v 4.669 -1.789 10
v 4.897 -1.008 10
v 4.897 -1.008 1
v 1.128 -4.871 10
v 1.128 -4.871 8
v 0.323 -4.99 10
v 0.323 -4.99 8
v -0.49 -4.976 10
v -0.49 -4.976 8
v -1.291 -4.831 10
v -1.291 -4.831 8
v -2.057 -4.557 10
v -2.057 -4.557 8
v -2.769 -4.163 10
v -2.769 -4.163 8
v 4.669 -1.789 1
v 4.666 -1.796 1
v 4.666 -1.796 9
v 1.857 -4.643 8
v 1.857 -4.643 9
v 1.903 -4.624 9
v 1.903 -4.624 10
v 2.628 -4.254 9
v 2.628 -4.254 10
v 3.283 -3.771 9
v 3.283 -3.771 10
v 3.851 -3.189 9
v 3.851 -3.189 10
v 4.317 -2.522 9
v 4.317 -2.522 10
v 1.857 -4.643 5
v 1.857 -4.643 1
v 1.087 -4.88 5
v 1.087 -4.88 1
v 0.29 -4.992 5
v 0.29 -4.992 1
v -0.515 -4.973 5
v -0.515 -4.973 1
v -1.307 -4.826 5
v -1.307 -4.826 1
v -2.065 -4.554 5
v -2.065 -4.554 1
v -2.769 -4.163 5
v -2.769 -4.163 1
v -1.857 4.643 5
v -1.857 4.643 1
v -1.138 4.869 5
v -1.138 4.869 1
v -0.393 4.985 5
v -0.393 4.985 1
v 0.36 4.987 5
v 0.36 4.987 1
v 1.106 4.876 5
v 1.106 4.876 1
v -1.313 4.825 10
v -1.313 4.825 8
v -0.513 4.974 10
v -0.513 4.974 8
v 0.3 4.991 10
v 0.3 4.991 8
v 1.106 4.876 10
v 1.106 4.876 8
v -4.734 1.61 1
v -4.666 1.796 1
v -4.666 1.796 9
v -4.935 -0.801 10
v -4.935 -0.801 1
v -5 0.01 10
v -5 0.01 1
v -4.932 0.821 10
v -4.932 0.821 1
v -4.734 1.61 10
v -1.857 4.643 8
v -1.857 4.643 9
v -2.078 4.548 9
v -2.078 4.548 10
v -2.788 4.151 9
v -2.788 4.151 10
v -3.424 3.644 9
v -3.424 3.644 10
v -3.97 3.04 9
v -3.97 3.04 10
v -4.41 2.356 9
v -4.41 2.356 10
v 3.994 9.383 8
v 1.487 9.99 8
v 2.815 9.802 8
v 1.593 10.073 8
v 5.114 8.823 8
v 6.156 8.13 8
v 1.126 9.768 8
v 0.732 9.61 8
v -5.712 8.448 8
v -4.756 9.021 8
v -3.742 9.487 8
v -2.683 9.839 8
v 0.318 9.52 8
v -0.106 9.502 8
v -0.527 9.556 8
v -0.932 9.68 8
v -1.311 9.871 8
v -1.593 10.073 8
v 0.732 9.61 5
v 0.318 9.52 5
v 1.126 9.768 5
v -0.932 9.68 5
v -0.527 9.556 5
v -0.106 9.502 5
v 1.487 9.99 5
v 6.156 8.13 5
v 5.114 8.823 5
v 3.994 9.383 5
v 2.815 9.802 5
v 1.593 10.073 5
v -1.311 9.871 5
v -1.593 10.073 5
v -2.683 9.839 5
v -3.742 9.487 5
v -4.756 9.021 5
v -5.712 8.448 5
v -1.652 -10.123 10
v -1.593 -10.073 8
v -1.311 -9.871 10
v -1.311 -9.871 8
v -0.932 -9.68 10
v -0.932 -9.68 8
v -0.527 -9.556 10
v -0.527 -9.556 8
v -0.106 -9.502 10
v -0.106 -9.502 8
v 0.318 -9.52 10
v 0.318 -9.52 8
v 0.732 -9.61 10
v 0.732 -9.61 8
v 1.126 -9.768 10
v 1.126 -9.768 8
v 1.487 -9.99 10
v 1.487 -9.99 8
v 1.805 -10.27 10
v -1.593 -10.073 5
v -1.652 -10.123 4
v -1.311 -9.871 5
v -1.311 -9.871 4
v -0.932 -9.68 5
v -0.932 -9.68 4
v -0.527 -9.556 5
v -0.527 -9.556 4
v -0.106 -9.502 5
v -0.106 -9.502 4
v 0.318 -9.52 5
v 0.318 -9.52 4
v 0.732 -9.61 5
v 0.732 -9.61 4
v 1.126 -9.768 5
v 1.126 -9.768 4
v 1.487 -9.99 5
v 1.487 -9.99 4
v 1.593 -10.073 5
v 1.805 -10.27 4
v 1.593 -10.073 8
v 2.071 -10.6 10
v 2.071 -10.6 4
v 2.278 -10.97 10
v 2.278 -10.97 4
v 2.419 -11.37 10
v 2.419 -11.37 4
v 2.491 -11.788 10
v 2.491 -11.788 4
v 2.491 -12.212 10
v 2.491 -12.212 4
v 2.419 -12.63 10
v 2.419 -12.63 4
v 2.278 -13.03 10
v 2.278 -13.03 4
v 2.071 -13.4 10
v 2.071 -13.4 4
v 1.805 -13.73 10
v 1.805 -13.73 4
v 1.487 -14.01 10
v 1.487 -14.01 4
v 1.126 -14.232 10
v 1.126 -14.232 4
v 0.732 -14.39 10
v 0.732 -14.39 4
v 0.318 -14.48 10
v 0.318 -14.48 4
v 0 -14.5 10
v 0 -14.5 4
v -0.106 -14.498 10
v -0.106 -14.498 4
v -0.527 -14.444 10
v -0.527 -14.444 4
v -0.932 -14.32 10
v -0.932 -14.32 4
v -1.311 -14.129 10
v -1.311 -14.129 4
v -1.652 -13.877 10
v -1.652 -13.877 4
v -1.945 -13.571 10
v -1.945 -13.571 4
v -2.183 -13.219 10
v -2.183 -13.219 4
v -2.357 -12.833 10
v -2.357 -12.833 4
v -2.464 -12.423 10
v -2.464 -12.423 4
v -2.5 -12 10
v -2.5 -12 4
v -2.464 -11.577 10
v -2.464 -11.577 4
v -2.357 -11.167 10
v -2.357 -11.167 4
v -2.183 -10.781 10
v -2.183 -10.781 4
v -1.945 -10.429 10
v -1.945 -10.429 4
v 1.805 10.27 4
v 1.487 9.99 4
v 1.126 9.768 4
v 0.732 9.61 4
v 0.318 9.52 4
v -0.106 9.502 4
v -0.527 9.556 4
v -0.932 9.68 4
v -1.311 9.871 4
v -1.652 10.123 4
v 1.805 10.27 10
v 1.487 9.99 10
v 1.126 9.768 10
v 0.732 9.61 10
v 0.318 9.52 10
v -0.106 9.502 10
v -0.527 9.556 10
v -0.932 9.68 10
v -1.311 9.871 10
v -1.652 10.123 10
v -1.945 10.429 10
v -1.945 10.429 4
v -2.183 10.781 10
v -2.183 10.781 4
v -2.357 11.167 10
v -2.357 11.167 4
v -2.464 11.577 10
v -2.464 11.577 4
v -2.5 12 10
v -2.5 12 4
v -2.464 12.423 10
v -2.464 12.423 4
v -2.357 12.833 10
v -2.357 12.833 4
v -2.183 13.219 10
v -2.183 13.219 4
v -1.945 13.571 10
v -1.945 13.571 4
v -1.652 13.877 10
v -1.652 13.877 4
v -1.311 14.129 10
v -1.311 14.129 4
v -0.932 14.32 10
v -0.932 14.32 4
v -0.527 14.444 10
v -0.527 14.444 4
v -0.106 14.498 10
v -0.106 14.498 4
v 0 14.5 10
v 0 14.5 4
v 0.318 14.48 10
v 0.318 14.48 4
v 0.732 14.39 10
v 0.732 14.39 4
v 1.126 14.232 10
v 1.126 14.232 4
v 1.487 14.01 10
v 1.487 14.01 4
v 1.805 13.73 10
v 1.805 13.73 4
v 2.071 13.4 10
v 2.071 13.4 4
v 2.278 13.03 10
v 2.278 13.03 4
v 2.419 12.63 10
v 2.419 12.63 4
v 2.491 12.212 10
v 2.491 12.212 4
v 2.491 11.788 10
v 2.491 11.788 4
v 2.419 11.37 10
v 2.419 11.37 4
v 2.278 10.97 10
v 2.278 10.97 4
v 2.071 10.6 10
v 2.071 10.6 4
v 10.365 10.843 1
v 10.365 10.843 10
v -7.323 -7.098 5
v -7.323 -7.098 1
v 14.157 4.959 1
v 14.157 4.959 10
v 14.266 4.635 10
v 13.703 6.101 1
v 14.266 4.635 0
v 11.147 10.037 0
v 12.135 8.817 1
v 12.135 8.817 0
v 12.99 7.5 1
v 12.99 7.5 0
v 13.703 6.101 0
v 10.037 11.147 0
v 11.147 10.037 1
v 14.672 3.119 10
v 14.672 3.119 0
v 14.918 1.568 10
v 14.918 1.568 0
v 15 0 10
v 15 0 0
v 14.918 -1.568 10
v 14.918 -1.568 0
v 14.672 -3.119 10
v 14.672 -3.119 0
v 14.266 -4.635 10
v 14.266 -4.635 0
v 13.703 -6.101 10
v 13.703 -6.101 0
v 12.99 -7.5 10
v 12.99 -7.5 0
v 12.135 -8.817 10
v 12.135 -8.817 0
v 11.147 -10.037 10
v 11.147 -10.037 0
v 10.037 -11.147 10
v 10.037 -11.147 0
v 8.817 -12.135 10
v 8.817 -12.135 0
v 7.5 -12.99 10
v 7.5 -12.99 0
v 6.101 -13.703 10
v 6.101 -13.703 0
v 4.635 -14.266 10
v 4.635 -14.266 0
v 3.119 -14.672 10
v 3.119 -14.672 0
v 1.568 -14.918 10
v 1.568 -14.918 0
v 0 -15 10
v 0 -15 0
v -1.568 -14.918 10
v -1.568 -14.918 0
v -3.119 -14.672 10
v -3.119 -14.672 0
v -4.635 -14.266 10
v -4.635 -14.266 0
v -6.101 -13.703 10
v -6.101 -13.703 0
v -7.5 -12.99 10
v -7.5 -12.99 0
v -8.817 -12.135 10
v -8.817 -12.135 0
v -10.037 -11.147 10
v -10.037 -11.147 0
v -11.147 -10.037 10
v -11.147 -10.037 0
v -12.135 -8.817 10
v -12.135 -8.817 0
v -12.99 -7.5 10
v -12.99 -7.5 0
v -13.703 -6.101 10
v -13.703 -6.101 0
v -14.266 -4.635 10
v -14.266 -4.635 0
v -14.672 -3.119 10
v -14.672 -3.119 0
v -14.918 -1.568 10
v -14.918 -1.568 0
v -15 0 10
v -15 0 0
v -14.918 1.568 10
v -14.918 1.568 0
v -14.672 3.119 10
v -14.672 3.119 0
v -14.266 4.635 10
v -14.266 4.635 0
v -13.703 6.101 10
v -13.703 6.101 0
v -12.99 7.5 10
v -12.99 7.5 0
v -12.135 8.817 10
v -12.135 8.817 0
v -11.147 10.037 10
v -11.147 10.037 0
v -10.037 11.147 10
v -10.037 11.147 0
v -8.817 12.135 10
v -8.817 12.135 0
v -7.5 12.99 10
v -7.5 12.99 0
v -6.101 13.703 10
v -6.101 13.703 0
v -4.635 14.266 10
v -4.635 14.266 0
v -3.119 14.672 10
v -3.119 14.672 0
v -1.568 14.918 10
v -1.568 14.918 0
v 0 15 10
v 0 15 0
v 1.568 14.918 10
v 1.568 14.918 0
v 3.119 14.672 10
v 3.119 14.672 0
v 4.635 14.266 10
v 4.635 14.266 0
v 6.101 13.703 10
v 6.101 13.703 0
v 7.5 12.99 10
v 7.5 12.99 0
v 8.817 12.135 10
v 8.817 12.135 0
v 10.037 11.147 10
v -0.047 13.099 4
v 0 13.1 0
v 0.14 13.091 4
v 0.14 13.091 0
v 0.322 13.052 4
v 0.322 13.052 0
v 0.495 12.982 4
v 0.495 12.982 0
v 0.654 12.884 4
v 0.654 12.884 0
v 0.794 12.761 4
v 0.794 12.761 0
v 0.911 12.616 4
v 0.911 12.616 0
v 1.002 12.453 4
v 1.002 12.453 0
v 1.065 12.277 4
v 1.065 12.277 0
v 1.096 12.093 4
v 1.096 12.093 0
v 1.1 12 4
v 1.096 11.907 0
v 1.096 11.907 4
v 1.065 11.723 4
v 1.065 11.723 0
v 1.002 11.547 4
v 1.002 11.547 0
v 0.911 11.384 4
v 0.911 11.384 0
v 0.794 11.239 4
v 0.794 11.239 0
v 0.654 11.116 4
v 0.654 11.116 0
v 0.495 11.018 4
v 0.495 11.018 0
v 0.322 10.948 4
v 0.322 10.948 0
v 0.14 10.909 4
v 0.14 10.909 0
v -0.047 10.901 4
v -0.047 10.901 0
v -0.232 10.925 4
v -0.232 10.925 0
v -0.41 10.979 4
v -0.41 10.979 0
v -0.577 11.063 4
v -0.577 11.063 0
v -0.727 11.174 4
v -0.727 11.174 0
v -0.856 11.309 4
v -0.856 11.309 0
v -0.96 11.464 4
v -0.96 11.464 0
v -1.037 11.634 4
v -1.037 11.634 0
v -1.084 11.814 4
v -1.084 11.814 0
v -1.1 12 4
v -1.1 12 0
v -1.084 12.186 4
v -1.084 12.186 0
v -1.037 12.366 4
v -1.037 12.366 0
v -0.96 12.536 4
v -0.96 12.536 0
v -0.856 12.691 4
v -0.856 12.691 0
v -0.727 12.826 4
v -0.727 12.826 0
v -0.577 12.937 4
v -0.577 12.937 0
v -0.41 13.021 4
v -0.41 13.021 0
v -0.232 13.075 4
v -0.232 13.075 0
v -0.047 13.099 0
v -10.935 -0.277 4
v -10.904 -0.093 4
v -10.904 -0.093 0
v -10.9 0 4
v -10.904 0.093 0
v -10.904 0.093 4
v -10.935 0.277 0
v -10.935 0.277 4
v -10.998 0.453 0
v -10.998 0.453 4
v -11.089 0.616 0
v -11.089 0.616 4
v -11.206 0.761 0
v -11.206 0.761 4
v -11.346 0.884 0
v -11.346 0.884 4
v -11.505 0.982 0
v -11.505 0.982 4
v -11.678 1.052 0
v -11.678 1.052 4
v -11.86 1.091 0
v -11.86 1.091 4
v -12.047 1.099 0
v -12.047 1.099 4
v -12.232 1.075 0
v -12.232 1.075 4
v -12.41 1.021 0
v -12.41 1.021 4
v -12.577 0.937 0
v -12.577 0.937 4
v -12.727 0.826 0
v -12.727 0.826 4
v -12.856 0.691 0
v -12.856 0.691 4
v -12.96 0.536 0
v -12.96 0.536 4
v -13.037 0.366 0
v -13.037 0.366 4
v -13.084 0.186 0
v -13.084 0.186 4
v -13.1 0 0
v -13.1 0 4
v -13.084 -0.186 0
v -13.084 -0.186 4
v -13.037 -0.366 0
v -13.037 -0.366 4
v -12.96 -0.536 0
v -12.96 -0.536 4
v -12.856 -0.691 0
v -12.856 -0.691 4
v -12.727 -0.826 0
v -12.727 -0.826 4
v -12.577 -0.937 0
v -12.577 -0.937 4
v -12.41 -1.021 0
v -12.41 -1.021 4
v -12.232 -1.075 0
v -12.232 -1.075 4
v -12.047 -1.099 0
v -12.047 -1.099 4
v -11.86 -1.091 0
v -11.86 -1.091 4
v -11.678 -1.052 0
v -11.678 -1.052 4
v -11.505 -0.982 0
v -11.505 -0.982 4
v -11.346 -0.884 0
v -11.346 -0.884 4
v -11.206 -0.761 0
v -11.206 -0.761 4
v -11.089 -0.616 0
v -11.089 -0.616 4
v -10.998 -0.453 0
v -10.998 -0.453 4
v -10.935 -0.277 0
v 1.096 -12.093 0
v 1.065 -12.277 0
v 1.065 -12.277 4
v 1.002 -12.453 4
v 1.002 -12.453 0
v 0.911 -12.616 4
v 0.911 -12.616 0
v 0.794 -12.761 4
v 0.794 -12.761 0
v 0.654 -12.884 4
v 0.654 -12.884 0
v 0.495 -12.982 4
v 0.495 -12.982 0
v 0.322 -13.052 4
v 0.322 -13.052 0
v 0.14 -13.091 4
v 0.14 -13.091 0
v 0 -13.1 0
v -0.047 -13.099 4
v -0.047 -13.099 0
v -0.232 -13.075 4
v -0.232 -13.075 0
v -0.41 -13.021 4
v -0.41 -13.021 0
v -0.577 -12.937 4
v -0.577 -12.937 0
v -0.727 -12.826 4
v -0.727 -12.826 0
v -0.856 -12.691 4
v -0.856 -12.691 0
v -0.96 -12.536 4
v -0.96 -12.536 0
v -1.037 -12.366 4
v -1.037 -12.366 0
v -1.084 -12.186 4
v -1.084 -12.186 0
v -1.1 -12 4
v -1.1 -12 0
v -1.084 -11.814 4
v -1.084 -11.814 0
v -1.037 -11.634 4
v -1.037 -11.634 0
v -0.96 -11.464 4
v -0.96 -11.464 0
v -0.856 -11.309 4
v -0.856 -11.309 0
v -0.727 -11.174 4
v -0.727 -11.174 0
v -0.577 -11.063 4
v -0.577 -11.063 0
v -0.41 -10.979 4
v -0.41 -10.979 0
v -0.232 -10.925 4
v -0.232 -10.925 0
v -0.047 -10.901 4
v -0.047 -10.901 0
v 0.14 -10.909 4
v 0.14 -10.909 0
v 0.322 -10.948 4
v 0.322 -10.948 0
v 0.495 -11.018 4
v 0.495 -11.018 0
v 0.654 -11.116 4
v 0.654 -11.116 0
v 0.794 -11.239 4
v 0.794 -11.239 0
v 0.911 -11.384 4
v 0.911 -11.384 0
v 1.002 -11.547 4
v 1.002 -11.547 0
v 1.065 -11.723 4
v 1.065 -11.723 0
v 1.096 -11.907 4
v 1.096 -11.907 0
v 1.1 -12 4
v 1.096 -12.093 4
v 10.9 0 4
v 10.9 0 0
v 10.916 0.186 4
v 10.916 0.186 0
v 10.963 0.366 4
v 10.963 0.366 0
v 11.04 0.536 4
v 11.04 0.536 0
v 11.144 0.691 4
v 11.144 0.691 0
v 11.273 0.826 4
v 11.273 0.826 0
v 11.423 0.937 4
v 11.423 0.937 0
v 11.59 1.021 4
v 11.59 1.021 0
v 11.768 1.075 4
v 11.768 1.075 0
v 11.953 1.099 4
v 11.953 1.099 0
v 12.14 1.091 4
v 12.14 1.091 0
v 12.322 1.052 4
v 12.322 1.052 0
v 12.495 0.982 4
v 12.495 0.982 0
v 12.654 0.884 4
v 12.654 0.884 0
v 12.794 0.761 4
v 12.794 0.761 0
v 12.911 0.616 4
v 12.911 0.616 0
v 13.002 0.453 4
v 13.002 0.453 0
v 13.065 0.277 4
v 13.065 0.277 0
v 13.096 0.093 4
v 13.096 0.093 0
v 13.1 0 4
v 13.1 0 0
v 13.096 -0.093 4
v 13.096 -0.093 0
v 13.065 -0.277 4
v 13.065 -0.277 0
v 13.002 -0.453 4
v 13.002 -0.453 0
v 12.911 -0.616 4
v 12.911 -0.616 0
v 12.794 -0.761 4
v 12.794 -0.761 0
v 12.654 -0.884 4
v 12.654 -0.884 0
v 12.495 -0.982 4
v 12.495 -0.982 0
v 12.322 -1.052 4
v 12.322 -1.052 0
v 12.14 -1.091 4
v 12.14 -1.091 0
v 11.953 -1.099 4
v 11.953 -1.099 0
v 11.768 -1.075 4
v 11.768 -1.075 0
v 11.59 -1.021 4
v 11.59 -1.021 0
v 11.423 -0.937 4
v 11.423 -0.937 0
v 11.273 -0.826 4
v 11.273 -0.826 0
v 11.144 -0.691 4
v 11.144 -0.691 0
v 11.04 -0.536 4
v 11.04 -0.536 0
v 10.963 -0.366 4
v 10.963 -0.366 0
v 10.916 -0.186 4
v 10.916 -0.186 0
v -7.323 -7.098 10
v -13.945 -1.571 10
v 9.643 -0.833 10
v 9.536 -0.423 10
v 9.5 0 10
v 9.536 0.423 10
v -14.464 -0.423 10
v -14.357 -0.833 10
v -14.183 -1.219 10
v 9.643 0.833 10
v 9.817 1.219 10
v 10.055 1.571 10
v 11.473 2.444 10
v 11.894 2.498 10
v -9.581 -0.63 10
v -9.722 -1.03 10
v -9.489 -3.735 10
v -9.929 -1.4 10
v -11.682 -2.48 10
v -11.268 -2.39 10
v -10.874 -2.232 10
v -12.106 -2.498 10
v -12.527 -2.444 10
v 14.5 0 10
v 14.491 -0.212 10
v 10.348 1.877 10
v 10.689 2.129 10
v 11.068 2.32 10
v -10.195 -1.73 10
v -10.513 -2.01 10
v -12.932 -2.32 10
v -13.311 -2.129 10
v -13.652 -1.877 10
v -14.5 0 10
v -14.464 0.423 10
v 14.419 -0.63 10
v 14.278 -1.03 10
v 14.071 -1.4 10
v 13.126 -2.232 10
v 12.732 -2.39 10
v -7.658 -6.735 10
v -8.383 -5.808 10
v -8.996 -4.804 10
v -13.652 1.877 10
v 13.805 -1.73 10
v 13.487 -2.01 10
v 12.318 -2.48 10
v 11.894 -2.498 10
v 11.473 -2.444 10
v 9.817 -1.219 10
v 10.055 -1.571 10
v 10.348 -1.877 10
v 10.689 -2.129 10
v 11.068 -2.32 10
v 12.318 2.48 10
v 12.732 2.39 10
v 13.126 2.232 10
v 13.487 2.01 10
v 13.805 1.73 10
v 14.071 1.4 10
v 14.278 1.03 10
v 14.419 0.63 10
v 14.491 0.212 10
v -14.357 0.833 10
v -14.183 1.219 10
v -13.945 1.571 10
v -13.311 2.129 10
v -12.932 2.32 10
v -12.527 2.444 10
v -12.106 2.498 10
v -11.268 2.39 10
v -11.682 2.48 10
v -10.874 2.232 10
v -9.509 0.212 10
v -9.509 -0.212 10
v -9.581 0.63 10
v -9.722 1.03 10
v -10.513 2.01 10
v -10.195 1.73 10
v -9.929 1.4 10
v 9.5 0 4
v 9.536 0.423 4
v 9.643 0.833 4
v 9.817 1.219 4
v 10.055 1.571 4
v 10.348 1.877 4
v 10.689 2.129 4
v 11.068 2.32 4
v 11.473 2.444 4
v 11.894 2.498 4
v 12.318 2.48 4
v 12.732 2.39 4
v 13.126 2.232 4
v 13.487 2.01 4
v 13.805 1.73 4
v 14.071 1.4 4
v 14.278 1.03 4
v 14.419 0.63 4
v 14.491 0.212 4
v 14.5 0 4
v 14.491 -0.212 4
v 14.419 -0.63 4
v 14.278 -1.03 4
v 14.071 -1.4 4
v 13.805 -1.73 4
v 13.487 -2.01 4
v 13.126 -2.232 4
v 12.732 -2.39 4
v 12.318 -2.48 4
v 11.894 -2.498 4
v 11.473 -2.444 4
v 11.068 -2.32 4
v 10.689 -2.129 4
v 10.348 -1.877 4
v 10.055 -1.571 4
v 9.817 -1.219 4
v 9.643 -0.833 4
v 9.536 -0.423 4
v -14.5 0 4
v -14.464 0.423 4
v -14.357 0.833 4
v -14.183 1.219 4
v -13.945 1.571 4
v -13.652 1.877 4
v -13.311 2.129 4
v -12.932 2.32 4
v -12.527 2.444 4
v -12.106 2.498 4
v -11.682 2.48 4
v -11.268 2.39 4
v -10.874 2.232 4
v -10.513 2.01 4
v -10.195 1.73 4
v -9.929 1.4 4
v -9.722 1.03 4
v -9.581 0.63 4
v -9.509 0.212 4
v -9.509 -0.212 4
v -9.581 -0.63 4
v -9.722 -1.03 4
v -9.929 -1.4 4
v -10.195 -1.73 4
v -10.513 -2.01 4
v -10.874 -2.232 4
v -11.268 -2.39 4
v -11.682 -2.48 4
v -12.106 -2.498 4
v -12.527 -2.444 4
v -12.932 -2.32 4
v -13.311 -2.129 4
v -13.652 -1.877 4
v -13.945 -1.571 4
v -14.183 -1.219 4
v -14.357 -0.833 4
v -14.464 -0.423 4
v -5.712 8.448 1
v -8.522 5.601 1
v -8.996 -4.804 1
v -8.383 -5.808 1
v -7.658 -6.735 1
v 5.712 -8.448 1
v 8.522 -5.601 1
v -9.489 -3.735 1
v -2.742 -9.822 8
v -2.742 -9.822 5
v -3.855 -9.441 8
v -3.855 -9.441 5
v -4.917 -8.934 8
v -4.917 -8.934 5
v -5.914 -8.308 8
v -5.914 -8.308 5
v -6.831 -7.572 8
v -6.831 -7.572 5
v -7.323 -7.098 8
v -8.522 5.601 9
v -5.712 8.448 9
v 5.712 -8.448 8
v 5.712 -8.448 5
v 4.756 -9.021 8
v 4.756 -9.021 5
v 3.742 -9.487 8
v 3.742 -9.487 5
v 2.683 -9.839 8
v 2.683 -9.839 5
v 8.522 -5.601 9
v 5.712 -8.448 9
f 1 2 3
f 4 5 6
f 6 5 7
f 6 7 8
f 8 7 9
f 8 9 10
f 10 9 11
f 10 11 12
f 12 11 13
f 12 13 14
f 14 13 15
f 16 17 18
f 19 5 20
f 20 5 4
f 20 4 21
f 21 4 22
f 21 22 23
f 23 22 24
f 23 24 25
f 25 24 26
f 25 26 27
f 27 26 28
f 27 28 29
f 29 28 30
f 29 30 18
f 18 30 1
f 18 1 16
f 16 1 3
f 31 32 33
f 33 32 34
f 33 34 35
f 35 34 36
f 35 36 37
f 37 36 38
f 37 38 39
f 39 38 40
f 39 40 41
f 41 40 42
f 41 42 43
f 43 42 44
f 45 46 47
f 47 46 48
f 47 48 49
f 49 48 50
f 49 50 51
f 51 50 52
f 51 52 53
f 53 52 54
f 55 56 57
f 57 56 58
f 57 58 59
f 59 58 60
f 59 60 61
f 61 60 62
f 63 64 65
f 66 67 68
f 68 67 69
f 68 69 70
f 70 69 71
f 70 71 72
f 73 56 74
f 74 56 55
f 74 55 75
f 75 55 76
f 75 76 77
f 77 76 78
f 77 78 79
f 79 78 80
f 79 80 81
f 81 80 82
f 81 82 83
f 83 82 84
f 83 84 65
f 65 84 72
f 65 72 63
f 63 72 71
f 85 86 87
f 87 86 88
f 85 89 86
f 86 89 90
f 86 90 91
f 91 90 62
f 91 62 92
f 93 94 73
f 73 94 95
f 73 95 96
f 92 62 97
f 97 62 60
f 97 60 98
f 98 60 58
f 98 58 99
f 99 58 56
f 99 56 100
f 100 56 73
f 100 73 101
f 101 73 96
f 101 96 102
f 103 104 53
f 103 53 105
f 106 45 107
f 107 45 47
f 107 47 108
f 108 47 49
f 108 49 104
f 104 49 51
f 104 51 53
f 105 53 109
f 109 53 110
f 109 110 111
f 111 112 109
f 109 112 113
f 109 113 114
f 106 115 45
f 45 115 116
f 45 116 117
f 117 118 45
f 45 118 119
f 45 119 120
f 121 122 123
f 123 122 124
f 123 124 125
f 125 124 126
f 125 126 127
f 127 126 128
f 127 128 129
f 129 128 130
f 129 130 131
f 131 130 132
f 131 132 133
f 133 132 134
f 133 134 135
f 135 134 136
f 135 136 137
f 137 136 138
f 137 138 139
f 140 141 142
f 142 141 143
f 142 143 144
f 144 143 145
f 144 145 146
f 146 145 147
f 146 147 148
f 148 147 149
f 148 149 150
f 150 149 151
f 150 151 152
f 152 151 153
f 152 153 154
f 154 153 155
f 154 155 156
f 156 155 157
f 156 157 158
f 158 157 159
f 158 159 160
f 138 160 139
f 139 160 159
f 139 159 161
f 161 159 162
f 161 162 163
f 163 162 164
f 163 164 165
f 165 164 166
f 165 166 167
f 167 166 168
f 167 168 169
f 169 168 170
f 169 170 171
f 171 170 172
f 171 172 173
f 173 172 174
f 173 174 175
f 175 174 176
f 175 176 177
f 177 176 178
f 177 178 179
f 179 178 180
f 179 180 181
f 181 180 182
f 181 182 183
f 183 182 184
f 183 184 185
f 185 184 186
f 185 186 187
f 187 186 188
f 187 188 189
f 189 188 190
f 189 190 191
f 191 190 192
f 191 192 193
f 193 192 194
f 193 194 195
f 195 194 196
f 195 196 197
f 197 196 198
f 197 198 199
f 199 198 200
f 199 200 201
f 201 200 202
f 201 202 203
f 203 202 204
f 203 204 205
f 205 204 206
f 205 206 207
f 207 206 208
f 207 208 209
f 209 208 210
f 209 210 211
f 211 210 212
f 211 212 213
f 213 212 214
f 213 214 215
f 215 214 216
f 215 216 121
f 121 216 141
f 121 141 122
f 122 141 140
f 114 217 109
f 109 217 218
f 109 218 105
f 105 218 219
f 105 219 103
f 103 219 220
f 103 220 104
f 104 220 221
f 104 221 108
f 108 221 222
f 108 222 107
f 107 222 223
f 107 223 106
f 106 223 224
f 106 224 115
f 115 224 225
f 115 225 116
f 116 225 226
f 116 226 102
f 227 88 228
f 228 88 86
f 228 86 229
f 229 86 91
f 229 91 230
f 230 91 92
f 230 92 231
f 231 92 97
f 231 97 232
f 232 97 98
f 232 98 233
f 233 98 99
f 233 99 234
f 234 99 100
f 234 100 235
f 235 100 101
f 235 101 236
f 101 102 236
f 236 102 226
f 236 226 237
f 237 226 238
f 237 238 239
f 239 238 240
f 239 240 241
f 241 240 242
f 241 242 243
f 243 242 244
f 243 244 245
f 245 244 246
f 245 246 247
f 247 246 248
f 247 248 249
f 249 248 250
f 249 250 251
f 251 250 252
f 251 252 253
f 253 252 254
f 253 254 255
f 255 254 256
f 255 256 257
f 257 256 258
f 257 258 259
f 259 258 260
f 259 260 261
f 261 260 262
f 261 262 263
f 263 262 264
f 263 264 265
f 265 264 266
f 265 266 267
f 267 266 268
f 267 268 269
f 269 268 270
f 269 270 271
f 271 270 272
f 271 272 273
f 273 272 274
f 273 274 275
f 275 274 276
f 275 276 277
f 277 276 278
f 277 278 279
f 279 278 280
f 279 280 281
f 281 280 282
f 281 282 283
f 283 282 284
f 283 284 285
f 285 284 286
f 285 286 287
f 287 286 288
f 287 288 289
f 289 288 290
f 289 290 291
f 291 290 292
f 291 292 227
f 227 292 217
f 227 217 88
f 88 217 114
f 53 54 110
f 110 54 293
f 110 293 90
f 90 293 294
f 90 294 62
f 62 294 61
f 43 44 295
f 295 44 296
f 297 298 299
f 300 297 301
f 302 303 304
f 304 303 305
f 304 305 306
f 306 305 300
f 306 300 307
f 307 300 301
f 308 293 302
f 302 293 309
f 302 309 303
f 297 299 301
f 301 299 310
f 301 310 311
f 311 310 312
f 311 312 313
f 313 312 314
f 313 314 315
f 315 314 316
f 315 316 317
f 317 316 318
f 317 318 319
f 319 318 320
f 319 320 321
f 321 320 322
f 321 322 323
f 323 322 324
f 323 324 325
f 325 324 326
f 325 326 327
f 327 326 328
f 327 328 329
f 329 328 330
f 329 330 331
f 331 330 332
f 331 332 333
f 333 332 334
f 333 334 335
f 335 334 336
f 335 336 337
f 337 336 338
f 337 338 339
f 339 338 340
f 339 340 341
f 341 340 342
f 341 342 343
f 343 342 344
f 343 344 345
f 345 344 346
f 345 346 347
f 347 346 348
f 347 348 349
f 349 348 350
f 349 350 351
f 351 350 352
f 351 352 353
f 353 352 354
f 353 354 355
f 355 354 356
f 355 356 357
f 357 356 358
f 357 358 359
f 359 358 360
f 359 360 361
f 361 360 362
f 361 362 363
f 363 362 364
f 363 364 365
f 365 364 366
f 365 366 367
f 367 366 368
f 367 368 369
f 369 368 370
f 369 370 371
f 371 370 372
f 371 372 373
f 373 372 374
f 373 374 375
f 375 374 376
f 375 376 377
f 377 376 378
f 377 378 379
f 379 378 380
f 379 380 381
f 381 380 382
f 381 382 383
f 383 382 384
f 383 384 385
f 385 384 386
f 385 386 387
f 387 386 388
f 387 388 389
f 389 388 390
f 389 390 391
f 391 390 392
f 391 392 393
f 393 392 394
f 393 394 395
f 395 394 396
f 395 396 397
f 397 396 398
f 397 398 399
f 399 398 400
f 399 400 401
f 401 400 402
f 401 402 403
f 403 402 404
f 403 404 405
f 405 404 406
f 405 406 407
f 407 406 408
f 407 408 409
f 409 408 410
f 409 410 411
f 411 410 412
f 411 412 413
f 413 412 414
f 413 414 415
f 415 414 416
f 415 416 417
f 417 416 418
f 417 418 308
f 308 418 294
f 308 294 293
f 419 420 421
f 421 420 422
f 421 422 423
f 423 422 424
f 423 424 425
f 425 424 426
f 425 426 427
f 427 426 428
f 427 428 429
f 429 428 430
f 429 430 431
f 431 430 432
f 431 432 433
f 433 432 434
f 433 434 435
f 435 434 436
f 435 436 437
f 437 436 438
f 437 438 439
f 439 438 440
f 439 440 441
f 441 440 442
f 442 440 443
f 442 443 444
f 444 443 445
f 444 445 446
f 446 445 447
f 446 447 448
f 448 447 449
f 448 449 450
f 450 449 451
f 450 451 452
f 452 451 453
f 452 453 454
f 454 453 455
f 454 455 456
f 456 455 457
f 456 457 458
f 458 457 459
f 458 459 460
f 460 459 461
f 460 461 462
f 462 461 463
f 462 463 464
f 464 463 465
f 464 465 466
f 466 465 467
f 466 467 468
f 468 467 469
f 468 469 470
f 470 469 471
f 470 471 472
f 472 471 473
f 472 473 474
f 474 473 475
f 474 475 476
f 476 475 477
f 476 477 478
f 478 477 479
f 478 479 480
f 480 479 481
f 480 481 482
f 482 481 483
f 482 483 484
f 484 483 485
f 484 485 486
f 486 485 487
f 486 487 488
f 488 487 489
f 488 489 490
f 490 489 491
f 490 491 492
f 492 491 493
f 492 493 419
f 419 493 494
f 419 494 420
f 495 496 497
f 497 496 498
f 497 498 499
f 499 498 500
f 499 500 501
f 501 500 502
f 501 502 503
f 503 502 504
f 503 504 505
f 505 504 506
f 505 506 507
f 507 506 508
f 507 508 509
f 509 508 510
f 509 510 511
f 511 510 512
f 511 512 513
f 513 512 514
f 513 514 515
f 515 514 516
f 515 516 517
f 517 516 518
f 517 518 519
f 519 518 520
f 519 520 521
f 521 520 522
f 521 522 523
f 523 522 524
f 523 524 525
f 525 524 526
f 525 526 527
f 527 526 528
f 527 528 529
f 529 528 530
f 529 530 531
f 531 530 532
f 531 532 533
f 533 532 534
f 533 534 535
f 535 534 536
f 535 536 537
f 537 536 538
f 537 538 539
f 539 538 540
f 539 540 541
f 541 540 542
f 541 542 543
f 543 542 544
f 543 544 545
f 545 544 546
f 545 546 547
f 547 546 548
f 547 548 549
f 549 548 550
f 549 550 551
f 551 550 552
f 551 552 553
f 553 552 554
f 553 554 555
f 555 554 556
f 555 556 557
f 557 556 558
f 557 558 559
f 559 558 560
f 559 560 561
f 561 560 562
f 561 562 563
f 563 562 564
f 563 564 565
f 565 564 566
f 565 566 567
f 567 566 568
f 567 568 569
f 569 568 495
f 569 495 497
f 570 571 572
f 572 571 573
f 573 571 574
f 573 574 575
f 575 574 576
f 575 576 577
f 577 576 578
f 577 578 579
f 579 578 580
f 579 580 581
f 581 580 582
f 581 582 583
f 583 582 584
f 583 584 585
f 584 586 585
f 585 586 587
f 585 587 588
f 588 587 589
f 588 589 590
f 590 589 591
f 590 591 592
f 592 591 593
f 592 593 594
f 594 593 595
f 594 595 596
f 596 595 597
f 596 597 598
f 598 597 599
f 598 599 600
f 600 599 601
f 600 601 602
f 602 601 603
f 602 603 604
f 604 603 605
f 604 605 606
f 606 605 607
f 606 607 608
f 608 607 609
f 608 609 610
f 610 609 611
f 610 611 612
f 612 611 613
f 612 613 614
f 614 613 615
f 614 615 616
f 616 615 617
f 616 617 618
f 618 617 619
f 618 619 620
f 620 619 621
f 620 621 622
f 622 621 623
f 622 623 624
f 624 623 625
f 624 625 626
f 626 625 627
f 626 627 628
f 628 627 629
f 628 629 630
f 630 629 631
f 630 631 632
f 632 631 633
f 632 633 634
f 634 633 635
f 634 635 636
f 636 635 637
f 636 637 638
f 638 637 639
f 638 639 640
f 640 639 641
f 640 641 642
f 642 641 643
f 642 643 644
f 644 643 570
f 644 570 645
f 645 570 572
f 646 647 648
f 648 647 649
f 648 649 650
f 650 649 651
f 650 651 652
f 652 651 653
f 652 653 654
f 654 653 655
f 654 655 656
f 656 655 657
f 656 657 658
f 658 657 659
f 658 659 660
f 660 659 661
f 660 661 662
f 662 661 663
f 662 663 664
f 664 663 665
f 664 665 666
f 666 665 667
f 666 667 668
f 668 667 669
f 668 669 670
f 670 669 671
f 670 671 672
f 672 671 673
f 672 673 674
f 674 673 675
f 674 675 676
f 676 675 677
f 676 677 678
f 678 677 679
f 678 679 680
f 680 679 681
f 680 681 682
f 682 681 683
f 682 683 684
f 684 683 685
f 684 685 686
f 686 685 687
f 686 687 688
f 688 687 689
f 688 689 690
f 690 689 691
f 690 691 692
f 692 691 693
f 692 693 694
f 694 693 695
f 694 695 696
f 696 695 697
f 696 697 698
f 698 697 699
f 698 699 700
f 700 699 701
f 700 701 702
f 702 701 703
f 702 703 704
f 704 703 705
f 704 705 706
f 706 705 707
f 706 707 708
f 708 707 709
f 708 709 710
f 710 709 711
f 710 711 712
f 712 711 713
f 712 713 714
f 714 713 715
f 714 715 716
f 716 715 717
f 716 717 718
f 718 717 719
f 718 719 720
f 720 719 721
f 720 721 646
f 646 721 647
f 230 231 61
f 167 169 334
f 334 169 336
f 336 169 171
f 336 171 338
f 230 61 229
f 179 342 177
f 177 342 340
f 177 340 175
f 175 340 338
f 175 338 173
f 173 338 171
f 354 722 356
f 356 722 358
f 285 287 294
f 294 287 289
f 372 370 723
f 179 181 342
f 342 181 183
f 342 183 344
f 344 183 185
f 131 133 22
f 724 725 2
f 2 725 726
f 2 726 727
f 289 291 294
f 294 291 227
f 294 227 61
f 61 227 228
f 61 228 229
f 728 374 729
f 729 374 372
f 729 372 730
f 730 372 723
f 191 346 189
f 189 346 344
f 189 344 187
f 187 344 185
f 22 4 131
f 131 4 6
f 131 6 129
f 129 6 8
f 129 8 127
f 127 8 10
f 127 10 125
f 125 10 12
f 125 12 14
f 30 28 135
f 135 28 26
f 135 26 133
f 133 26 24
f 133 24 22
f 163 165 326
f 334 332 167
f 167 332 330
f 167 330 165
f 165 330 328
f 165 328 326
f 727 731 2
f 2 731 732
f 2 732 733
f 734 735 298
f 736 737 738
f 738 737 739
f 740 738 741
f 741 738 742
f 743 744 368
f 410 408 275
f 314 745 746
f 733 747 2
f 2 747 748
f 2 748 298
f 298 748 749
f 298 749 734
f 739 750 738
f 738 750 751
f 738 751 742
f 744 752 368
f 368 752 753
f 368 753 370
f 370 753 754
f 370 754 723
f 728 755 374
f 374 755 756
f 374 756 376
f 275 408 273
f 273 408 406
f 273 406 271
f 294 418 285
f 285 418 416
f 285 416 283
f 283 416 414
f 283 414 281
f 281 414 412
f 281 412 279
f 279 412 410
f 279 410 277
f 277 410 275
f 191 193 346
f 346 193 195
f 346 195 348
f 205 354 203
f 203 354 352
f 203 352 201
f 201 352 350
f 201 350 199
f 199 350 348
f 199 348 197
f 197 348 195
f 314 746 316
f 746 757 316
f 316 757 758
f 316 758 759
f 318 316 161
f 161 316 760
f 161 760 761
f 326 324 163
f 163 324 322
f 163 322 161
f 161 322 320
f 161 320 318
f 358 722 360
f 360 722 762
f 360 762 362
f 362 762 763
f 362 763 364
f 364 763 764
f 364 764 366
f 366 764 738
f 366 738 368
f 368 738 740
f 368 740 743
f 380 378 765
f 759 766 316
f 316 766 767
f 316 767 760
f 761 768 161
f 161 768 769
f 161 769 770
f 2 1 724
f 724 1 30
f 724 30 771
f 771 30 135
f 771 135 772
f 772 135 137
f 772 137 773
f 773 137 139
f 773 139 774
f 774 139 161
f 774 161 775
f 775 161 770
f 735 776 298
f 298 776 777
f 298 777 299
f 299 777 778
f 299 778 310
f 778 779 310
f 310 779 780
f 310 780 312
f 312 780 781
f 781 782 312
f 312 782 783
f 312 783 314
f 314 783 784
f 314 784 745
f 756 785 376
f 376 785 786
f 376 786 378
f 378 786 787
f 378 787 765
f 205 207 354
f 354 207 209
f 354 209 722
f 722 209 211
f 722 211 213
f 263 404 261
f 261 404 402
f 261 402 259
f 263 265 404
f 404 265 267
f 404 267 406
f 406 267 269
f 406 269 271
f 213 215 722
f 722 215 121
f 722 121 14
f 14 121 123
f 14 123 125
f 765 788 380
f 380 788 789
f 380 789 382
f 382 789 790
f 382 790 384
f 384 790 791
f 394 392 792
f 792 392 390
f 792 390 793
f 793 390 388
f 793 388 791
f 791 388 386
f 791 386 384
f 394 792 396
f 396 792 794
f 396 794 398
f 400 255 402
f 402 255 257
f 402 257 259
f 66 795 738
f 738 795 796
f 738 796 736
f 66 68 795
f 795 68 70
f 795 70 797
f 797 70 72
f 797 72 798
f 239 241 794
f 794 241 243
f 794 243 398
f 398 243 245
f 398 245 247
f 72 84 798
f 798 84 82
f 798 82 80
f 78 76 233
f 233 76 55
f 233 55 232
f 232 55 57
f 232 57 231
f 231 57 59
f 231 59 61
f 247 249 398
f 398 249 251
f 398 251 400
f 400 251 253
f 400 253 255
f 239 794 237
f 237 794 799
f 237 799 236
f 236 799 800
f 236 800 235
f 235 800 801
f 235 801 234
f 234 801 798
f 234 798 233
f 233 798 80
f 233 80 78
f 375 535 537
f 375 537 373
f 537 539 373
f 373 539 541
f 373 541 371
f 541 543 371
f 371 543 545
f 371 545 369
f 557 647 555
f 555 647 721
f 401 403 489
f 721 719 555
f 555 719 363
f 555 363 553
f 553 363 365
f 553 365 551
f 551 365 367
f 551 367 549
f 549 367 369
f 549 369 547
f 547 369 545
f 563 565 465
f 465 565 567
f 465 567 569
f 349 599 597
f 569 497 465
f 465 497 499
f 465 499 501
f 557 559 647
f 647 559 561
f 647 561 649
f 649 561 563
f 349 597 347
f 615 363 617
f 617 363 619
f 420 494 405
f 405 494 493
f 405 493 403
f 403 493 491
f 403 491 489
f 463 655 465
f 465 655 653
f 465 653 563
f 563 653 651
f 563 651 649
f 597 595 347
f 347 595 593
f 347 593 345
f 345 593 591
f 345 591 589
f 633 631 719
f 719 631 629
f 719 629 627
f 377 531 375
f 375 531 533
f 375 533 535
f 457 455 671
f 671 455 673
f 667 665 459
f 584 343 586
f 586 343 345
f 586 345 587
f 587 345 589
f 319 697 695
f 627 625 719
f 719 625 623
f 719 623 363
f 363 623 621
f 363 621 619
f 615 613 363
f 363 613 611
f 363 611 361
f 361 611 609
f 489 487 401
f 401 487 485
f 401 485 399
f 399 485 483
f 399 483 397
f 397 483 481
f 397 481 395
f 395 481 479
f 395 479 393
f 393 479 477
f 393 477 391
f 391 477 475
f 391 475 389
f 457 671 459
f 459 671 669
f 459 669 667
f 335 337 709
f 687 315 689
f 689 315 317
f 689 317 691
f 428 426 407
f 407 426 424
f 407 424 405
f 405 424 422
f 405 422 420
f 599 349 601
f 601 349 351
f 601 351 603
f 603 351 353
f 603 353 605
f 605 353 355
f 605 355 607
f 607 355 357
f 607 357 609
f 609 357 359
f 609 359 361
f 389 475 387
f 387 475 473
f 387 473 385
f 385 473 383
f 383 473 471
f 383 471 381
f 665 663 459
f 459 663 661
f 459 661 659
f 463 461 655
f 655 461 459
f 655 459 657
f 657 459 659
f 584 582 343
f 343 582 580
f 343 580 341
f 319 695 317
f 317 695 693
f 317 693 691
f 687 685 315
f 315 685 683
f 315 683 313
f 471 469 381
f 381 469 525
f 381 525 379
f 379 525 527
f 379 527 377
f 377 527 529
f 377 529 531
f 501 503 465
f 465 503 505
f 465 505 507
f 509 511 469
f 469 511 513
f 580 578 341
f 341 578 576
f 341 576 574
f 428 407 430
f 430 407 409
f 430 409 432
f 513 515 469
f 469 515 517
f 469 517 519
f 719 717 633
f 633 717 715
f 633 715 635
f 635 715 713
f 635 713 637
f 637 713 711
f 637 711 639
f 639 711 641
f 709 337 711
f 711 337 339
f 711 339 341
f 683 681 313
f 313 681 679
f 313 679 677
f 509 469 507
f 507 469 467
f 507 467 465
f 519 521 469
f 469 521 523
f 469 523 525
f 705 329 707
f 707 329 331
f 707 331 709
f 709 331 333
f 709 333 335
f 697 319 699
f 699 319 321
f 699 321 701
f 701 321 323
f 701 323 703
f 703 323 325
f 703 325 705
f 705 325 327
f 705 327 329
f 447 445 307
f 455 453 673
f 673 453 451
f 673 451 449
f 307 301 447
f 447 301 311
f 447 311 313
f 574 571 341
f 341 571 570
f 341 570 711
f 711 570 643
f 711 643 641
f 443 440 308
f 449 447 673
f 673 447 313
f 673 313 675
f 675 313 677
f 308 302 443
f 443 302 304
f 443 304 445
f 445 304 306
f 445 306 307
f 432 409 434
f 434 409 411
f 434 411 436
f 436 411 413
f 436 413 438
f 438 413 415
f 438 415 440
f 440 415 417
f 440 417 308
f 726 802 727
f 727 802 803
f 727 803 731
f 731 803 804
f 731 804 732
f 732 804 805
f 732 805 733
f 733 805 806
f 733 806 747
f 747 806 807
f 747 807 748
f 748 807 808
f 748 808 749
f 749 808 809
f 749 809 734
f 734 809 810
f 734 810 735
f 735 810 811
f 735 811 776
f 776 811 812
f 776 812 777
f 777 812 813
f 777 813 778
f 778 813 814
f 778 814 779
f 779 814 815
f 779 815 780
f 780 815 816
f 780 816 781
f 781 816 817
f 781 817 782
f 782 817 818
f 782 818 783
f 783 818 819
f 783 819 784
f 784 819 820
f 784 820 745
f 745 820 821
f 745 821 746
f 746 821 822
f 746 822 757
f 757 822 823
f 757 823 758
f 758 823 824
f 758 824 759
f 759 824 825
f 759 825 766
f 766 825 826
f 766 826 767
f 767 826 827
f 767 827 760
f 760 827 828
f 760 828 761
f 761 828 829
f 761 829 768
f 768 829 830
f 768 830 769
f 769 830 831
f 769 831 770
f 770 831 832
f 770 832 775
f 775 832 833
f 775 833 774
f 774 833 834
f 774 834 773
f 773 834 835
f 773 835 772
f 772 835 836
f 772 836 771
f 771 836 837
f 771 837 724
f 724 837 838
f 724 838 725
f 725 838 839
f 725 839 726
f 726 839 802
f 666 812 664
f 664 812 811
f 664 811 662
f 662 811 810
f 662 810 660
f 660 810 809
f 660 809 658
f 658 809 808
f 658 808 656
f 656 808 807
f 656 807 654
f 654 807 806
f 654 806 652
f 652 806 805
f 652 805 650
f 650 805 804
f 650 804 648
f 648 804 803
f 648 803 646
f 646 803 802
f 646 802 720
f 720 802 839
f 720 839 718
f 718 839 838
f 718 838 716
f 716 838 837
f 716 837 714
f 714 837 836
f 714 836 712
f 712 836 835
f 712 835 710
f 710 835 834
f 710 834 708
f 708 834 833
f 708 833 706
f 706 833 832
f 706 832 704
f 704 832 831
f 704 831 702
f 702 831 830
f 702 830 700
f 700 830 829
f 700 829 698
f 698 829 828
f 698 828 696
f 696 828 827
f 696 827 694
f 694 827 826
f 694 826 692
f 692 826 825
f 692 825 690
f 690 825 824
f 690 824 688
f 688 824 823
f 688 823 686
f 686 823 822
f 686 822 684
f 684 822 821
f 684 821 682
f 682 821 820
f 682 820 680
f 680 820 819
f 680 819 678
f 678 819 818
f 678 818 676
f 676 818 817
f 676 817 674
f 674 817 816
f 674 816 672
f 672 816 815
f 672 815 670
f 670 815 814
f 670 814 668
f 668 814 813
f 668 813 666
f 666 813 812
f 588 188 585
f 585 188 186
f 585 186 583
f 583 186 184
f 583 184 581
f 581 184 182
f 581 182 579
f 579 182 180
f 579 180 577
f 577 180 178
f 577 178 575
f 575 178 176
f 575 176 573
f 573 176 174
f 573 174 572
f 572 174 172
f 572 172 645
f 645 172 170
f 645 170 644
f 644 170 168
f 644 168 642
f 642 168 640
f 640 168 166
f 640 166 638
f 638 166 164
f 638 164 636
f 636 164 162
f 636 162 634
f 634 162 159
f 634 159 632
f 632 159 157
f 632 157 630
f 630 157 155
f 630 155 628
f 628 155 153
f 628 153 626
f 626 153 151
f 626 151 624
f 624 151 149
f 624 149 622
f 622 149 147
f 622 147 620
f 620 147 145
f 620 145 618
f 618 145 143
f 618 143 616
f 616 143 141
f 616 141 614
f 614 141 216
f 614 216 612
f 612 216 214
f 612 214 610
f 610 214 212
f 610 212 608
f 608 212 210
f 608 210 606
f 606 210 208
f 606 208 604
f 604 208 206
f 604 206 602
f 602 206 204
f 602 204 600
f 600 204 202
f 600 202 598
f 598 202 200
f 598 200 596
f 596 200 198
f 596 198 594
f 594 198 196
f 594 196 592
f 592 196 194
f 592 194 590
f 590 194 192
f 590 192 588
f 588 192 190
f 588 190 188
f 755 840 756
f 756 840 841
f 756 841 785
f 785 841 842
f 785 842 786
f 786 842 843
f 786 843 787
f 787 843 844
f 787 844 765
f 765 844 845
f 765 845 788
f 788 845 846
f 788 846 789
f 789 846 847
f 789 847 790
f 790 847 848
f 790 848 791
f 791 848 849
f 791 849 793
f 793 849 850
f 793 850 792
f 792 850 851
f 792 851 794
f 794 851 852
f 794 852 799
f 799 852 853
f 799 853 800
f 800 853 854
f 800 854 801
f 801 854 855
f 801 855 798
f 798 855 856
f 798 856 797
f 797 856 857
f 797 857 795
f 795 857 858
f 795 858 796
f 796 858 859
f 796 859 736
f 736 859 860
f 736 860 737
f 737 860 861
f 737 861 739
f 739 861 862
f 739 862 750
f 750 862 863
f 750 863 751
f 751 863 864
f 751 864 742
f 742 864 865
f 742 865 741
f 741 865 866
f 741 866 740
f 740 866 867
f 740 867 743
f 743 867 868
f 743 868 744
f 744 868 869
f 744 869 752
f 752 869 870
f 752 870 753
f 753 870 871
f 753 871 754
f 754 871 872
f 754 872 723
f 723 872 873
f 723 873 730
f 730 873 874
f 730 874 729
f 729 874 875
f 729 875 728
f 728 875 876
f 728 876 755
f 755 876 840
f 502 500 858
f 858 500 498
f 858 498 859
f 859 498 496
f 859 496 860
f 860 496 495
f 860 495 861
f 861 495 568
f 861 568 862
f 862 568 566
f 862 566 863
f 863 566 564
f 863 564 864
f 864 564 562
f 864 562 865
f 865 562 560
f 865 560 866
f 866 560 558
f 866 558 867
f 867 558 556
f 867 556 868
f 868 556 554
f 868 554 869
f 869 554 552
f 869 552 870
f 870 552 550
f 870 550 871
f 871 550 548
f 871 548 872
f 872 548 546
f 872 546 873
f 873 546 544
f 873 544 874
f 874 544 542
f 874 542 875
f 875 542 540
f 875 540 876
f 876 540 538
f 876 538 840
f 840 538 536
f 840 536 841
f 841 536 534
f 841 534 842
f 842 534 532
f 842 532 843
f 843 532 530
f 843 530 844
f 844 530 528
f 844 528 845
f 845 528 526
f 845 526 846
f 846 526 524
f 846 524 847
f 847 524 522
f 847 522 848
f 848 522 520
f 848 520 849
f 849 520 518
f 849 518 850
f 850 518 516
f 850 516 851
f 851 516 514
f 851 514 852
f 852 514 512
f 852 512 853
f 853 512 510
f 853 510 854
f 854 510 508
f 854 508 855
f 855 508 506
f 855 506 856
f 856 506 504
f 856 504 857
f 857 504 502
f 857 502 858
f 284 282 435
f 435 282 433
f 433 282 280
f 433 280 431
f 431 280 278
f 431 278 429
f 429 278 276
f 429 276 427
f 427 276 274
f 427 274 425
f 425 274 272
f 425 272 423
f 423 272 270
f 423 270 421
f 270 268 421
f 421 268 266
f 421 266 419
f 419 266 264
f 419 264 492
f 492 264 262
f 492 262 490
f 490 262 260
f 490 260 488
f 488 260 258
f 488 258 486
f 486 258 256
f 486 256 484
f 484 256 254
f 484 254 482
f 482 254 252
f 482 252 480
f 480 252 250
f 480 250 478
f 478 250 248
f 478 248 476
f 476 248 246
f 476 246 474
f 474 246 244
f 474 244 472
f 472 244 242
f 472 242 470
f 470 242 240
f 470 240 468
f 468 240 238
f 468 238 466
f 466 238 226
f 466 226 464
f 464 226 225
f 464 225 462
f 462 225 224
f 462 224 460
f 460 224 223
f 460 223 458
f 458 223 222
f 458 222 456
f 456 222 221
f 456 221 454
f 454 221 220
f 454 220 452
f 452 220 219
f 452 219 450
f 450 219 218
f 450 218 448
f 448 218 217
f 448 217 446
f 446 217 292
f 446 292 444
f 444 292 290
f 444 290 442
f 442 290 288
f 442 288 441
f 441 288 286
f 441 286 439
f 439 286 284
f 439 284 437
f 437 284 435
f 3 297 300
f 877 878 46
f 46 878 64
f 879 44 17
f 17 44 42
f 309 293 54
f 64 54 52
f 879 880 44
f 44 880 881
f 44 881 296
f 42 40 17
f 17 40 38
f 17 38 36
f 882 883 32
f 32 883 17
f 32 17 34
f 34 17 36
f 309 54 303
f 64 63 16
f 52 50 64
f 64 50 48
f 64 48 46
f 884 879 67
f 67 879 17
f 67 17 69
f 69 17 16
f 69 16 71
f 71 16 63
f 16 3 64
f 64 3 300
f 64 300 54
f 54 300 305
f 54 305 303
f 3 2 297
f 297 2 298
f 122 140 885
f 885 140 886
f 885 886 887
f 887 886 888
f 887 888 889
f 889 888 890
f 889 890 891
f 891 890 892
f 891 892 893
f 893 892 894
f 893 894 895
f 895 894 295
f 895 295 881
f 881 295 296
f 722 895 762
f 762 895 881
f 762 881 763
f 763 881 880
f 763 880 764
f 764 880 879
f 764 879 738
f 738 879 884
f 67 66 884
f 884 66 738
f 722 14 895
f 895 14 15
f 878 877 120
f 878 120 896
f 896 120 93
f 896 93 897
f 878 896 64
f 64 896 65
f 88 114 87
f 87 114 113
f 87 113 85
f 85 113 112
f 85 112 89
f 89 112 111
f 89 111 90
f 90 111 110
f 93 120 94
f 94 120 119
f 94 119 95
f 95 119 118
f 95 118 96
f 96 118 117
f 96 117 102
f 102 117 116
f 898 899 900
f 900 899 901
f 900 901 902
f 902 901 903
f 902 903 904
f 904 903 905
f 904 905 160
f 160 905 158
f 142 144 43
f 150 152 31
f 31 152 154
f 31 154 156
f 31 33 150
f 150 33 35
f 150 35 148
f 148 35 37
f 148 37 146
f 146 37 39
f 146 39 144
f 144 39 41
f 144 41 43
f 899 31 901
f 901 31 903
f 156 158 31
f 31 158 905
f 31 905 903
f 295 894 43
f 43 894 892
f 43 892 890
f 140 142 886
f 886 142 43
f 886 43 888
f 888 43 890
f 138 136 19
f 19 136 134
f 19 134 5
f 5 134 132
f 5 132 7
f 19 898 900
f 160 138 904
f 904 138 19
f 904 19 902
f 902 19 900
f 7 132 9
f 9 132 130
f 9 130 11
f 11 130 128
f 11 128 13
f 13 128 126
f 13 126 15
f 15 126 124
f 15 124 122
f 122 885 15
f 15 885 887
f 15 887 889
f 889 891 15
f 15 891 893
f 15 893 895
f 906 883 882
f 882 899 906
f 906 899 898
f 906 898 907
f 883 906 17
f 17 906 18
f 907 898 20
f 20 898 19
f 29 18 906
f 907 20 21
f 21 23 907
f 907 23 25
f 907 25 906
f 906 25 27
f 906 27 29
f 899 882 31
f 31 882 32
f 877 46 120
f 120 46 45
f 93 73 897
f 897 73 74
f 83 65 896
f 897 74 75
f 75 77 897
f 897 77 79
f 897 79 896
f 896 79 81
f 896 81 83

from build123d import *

# Parameters (mm, degrees)
SKETCH1_R                = 15
BOSS_EXTRUDE1_DEPTH      = 10
SKETCH1_3_R              = 1.1
SCREWTHREAD_CUTOUT_DEPTH = 24.452078799
SCREW_START              = 4
SKETCH1_4_R              = 2.5
SCREW_HEAD_CUTOUT_DEPTH  = 20.452078799
CIRPATTERN1_COUNT        = 4
CUT_EXTRUDE3_START       = 1
CUT_EXTRUDE3_DEPTH       = 23.452078799
CUT_EXTRUDE4_START       = 5
CUT_EXTRUDE4_DEPTH       = 3
CUT_EXTRUDE11_START      = 1
CUT_EXTRUDE11_DEPTH      = 8


with BuildPart() as part:
    # Sketch1 → Boss-Extrude1 (new body)
    with BuildSketch(Plane.XY):
        Circle(SKETCH1_R)
    extrude(amount=BOSS_EXTRUDE1_DEPTH)

    # Sketch1<3> → screwthread cutout (cut, through all)
    with BuildSketch(Plane.XY):
        with Locations((12, 0)):
            Circle(SKETCH1_3_R)
    screwthread_cutout = extrude(amount=SCREWTHREAD_CUTOUT_DEPTH, mode=Mode.SUBTRACT)

    # Sketch1<4> → screw head cutout (cut, through all)
    with BuildSketch(Plane.XY.offset(SCREW_START)):
        with Locations((12, 0)):
            Circle(SKETCH1_4_R)
    screw_head_cutout = extrude(amount=SCREW_HEAD_CUTOUT_DEPTH, mode=Mode.SUBTRACT)

    # CirPattern1: screwthread cutout, screw head cutout ×4 about axis
    cirpattern1_axis = Axis((0, 0, 10), (0, 0, -1))
    add([screwthread_cutout.rotate(cirpattern1_axis, i * 360 / CIRPATTERN1_COUNT) for i in range(1, CIRPATTERN1_COUNT)], mode=Mode.SUBTRACT)
    add([screw_head_cutout.rotate(cirpattern1_axis, i * 360 / CIRPATTERN1_COUNT) for i in range(1, CIRPATTERN1_COUNT)], mode=Mode.SUBTRACT)

    # Sketch2 → Cut-Extrude3 (cut, through all)
    with BuildSketch(Plane.XY.offset(CUT_EXTRUDE3_START)):
        with BuildLine():
            ThreePointArc((-9.489267084, -3.735479917), (-8.572404045, -5.523937806), (-7.322600417, -7.097853417))
            Line((-7.322600417, -7.097853417), (-2.768749437, -4.163415252))
            ThreePointArc((-2.768749437, -4.163415252), (1.903153532, -4.623635651), (4.897352046, -1.007939947))
            Line((4.897352046, -1.007939947), (14.925030647, 5.453756521))
            Line((14.925030647, 5.453756521), (11.13336398, 11.337910146))
            Line((11.13336398, 11.337910146), (1.105685379, 4.876213679))
            ThreePointArc((1.105685379, 4.876213679), (-3.424108155, 3.643553669), (-4.935416103, -0.801041751))
            Line((-4.935416103, -0.801041751), (-9.489267084, -3.735479917))
        make_face()
    extrude(amount=CUT_EXTRUDE3_DEPTH, mode=Mode.SUBTRACT)

    # Sketch2<4> → Cut-Extrude4 (cut)
    with BuildSketch(Plane.XY.offset(CUT_EXTRUDE4_START)):
        with BuildLine():
            Line((-9.489267084, -3.735479917), (-7.322600417, -7.097853417))
            ThreePointArc((-7.322600417, -7.097853417), (-1.050685684, -10.143769496), (5.712369236, -8.448007914))
            Line((5.712369236, -8.448007914), (8.522190031, -5.601096061))
            Line((8.522190031, -5.601096061), (3.180991239, -0.329485203))
            Line((3.180991239, -0.329485203), (9.489267084, 3.735479917))
            Line((9.489267084, 3.735479917), (7.322600417, 7.097853417))
            ThreePointArc((7.322600417, 7.097853417), (1.050685684, 10.143769496), (-5.712369236, 8.448007914))
            Line((-5.712369236, 8.448007914), (-8.522190031, 5.601096061))
            Line((-8.522190031, 5.601096061), (-3.180991239, 0.329485203))
            Line((-3.180991239, 0.329485203), (-9.489267084, -3.735479917))
        make_face()
    extrude(amount=CUT_EXTRUDE4_DEPTH, mode=Mode.SUBTRACT)

    # Sketch2<5> → Cut-Extrude11 (cut)
    with BuildSketch(Plane.XY.offset(CUT_EXTRUDE11_START)):
        Polygon((5.712369236, -8.448007914), (-8.522190031, 5.601096061), (-5.712369236, 8.448007914), (8.522190031, -5.601096061), align=None)
    extrude(amount=CUT_EXTRUDE11_DEPTH, mode=Mode.SUBTRACT)


solid = part.part
